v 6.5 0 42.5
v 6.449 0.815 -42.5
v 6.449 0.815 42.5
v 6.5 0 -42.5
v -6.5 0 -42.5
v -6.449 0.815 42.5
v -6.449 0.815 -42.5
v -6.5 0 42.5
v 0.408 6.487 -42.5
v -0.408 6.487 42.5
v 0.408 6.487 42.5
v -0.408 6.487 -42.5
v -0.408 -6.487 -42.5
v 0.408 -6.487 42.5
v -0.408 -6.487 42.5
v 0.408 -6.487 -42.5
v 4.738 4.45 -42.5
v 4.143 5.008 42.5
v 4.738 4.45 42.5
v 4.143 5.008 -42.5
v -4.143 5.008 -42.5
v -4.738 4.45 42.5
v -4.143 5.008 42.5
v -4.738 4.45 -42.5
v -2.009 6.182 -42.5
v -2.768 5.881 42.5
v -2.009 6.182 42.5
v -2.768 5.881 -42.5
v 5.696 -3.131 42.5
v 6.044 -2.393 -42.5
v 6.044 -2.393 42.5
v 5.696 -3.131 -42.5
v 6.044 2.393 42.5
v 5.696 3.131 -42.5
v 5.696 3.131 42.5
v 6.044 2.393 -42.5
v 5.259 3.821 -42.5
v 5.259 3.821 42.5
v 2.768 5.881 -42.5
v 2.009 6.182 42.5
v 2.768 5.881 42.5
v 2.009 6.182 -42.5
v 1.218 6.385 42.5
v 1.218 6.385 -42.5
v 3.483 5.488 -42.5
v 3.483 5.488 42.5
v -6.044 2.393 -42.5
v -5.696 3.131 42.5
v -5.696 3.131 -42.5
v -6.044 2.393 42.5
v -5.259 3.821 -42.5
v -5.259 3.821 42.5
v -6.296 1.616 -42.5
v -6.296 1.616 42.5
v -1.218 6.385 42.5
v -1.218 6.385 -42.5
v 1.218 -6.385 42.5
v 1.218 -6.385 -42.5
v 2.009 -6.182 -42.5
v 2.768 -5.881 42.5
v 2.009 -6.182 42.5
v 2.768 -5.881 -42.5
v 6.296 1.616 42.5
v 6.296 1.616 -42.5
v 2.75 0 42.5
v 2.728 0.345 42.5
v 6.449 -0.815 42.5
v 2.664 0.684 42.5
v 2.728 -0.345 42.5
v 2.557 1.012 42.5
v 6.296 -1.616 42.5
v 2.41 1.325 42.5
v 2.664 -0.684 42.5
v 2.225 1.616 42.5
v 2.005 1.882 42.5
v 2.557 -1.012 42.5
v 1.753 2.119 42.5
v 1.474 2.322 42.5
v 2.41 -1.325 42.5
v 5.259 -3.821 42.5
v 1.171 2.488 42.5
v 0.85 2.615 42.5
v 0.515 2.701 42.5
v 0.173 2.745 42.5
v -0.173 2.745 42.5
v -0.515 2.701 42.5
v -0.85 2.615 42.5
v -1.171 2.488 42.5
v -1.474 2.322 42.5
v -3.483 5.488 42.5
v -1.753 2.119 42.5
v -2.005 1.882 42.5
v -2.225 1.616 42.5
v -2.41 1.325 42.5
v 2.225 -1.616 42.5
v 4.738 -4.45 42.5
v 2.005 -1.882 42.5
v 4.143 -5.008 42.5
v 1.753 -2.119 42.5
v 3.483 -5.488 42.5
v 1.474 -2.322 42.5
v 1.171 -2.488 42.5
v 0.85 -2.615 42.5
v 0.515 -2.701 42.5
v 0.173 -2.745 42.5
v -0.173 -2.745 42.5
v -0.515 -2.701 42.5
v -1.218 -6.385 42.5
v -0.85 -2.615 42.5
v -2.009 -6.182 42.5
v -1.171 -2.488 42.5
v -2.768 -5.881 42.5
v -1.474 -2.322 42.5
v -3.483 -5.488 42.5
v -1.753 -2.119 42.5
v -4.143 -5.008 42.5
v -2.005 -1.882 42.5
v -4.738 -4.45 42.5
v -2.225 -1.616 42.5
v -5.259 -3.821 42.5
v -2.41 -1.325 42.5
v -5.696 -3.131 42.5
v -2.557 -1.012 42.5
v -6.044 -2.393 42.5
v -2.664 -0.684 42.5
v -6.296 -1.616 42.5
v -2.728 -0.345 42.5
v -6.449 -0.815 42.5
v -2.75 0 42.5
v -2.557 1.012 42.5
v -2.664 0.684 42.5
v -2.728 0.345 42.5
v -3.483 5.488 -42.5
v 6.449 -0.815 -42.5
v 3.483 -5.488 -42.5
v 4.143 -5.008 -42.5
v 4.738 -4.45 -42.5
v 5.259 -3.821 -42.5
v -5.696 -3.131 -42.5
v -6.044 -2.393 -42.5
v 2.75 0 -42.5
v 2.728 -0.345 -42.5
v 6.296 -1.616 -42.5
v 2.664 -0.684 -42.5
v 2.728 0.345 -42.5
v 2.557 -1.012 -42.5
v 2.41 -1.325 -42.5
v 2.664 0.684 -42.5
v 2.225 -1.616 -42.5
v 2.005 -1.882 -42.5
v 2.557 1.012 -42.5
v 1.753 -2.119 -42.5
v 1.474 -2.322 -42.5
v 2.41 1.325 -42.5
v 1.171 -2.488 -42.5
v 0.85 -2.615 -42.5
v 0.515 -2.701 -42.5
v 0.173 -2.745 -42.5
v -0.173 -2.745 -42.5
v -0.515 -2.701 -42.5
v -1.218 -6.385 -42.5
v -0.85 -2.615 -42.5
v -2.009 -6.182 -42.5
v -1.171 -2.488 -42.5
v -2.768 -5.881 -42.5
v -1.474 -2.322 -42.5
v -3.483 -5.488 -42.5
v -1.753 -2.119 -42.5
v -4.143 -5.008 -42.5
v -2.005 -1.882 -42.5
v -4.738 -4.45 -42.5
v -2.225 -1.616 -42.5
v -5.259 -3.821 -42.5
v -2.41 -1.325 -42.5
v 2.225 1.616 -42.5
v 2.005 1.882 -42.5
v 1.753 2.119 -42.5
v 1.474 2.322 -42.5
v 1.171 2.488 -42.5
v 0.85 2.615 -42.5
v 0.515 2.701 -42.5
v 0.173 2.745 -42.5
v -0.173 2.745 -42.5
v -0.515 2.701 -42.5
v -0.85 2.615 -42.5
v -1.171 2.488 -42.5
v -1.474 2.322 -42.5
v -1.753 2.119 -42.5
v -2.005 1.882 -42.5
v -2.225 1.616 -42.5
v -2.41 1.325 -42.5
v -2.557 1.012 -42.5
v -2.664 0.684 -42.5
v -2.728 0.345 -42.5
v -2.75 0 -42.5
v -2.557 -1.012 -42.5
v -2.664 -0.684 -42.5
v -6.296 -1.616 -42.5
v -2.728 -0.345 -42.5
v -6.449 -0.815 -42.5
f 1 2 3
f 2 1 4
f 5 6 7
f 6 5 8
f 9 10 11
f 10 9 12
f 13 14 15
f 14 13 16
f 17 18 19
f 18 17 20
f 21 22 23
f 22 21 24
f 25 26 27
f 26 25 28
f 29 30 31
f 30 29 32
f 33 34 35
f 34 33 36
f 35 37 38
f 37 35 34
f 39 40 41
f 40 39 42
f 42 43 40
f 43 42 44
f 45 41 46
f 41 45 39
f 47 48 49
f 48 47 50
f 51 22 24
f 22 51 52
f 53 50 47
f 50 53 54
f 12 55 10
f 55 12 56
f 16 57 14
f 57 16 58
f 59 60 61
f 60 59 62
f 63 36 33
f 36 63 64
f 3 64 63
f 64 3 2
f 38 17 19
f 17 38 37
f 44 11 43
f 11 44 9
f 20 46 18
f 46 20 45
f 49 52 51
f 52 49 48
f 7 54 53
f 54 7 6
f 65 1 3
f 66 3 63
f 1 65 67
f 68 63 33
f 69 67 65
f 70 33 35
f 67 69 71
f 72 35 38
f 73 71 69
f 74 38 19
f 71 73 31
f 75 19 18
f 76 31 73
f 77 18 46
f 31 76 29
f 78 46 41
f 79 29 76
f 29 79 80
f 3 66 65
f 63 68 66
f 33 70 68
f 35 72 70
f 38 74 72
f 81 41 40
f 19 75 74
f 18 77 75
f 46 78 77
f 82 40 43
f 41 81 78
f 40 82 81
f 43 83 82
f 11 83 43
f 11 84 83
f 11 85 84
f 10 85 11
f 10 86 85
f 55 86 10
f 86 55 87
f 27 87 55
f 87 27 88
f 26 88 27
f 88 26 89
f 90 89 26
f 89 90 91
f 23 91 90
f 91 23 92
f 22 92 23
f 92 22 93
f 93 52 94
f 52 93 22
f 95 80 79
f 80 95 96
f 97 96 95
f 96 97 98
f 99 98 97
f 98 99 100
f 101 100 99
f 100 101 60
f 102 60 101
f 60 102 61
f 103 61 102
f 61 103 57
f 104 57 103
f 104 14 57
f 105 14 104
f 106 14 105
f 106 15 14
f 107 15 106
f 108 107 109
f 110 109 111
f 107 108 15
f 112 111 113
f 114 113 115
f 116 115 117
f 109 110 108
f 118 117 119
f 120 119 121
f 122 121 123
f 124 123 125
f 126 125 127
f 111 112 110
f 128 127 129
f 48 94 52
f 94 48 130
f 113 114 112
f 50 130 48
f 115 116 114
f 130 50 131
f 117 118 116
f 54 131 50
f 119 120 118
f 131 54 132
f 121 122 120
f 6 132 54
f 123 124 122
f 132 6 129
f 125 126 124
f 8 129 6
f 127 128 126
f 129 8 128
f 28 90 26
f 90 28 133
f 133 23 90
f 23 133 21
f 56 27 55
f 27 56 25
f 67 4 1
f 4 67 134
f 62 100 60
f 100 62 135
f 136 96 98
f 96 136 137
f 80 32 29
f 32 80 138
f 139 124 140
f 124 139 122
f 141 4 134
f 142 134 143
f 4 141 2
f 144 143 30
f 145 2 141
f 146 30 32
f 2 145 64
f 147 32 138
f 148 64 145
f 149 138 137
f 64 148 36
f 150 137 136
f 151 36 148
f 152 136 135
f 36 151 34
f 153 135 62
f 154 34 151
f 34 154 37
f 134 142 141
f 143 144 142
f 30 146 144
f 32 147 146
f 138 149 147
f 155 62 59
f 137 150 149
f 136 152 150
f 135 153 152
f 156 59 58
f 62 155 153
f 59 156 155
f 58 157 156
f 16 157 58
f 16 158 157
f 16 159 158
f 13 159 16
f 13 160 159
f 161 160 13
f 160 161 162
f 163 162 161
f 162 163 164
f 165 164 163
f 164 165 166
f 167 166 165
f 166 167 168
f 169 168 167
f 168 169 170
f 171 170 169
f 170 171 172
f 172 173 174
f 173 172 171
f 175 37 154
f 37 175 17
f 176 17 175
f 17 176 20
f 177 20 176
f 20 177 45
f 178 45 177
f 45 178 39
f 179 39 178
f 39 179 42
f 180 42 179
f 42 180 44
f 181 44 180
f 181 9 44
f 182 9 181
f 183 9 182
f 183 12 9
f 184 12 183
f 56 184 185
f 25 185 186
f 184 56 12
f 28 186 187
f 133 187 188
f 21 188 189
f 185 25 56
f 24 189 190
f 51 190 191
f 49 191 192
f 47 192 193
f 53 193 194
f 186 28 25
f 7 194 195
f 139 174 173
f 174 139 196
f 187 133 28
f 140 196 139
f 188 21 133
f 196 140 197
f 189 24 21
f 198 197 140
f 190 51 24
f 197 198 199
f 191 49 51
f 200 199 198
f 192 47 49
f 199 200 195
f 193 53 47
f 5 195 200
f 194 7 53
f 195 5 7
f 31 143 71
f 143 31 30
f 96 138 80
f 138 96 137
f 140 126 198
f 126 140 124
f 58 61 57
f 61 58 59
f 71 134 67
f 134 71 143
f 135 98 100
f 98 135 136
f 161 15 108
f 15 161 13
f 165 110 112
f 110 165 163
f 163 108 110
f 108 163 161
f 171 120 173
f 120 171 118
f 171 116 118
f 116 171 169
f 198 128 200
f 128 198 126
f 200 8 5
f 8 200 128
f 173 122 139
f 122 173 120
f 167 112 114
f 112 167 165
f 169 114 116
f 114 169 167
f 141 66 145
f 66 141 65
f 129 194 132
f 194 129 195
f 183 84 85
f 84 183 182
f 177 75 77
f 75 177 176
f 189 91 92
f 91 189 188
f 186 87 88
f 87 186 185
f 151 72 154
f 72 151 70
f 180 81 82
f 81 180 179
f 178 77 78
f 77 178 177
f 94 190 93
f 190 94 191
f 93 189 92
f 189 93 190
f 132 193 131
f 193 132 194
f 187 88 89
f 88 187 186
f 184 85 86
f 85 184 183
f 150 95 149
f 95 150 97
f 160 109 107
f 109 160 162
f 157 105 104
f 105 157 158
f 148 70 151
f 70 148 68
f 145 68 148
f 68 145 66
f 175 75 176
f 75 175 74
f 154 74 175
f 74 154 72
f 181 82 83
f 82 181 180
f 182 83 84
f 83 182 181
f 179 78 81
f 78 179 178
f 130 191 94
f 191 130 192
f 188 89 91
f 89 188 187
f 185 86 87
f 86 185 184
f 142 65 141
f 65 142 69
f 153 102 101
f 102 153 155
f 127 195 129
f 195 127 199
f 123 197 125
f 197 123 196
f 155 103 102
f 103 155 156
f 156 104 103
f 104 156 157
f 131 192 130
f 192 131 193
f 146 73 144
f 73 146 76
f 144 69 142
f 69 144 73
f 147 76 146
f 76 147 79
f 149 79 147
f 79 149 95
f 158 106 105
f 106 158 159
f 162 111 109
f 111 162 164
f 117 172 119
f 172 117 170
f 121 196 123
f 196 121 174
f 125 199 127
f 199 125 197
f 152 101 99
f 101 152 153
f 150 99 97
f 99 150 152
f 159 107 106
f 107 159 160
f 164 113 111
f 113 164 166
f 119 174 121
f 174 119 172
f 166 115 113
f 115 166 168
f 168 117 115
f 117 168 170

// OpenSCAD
$fn = 50;


difference() {
	union() {
		translate(v = [0, 0, -42.5000000000]) {
			cylinder(h = 85, r = 6.5000000000);
		}
	}
	union() {
		translate(v = [0, 0, -100.0000000000]) {
			cylinder(h = 200, r = 2.7500000000);
		}
	}
}
